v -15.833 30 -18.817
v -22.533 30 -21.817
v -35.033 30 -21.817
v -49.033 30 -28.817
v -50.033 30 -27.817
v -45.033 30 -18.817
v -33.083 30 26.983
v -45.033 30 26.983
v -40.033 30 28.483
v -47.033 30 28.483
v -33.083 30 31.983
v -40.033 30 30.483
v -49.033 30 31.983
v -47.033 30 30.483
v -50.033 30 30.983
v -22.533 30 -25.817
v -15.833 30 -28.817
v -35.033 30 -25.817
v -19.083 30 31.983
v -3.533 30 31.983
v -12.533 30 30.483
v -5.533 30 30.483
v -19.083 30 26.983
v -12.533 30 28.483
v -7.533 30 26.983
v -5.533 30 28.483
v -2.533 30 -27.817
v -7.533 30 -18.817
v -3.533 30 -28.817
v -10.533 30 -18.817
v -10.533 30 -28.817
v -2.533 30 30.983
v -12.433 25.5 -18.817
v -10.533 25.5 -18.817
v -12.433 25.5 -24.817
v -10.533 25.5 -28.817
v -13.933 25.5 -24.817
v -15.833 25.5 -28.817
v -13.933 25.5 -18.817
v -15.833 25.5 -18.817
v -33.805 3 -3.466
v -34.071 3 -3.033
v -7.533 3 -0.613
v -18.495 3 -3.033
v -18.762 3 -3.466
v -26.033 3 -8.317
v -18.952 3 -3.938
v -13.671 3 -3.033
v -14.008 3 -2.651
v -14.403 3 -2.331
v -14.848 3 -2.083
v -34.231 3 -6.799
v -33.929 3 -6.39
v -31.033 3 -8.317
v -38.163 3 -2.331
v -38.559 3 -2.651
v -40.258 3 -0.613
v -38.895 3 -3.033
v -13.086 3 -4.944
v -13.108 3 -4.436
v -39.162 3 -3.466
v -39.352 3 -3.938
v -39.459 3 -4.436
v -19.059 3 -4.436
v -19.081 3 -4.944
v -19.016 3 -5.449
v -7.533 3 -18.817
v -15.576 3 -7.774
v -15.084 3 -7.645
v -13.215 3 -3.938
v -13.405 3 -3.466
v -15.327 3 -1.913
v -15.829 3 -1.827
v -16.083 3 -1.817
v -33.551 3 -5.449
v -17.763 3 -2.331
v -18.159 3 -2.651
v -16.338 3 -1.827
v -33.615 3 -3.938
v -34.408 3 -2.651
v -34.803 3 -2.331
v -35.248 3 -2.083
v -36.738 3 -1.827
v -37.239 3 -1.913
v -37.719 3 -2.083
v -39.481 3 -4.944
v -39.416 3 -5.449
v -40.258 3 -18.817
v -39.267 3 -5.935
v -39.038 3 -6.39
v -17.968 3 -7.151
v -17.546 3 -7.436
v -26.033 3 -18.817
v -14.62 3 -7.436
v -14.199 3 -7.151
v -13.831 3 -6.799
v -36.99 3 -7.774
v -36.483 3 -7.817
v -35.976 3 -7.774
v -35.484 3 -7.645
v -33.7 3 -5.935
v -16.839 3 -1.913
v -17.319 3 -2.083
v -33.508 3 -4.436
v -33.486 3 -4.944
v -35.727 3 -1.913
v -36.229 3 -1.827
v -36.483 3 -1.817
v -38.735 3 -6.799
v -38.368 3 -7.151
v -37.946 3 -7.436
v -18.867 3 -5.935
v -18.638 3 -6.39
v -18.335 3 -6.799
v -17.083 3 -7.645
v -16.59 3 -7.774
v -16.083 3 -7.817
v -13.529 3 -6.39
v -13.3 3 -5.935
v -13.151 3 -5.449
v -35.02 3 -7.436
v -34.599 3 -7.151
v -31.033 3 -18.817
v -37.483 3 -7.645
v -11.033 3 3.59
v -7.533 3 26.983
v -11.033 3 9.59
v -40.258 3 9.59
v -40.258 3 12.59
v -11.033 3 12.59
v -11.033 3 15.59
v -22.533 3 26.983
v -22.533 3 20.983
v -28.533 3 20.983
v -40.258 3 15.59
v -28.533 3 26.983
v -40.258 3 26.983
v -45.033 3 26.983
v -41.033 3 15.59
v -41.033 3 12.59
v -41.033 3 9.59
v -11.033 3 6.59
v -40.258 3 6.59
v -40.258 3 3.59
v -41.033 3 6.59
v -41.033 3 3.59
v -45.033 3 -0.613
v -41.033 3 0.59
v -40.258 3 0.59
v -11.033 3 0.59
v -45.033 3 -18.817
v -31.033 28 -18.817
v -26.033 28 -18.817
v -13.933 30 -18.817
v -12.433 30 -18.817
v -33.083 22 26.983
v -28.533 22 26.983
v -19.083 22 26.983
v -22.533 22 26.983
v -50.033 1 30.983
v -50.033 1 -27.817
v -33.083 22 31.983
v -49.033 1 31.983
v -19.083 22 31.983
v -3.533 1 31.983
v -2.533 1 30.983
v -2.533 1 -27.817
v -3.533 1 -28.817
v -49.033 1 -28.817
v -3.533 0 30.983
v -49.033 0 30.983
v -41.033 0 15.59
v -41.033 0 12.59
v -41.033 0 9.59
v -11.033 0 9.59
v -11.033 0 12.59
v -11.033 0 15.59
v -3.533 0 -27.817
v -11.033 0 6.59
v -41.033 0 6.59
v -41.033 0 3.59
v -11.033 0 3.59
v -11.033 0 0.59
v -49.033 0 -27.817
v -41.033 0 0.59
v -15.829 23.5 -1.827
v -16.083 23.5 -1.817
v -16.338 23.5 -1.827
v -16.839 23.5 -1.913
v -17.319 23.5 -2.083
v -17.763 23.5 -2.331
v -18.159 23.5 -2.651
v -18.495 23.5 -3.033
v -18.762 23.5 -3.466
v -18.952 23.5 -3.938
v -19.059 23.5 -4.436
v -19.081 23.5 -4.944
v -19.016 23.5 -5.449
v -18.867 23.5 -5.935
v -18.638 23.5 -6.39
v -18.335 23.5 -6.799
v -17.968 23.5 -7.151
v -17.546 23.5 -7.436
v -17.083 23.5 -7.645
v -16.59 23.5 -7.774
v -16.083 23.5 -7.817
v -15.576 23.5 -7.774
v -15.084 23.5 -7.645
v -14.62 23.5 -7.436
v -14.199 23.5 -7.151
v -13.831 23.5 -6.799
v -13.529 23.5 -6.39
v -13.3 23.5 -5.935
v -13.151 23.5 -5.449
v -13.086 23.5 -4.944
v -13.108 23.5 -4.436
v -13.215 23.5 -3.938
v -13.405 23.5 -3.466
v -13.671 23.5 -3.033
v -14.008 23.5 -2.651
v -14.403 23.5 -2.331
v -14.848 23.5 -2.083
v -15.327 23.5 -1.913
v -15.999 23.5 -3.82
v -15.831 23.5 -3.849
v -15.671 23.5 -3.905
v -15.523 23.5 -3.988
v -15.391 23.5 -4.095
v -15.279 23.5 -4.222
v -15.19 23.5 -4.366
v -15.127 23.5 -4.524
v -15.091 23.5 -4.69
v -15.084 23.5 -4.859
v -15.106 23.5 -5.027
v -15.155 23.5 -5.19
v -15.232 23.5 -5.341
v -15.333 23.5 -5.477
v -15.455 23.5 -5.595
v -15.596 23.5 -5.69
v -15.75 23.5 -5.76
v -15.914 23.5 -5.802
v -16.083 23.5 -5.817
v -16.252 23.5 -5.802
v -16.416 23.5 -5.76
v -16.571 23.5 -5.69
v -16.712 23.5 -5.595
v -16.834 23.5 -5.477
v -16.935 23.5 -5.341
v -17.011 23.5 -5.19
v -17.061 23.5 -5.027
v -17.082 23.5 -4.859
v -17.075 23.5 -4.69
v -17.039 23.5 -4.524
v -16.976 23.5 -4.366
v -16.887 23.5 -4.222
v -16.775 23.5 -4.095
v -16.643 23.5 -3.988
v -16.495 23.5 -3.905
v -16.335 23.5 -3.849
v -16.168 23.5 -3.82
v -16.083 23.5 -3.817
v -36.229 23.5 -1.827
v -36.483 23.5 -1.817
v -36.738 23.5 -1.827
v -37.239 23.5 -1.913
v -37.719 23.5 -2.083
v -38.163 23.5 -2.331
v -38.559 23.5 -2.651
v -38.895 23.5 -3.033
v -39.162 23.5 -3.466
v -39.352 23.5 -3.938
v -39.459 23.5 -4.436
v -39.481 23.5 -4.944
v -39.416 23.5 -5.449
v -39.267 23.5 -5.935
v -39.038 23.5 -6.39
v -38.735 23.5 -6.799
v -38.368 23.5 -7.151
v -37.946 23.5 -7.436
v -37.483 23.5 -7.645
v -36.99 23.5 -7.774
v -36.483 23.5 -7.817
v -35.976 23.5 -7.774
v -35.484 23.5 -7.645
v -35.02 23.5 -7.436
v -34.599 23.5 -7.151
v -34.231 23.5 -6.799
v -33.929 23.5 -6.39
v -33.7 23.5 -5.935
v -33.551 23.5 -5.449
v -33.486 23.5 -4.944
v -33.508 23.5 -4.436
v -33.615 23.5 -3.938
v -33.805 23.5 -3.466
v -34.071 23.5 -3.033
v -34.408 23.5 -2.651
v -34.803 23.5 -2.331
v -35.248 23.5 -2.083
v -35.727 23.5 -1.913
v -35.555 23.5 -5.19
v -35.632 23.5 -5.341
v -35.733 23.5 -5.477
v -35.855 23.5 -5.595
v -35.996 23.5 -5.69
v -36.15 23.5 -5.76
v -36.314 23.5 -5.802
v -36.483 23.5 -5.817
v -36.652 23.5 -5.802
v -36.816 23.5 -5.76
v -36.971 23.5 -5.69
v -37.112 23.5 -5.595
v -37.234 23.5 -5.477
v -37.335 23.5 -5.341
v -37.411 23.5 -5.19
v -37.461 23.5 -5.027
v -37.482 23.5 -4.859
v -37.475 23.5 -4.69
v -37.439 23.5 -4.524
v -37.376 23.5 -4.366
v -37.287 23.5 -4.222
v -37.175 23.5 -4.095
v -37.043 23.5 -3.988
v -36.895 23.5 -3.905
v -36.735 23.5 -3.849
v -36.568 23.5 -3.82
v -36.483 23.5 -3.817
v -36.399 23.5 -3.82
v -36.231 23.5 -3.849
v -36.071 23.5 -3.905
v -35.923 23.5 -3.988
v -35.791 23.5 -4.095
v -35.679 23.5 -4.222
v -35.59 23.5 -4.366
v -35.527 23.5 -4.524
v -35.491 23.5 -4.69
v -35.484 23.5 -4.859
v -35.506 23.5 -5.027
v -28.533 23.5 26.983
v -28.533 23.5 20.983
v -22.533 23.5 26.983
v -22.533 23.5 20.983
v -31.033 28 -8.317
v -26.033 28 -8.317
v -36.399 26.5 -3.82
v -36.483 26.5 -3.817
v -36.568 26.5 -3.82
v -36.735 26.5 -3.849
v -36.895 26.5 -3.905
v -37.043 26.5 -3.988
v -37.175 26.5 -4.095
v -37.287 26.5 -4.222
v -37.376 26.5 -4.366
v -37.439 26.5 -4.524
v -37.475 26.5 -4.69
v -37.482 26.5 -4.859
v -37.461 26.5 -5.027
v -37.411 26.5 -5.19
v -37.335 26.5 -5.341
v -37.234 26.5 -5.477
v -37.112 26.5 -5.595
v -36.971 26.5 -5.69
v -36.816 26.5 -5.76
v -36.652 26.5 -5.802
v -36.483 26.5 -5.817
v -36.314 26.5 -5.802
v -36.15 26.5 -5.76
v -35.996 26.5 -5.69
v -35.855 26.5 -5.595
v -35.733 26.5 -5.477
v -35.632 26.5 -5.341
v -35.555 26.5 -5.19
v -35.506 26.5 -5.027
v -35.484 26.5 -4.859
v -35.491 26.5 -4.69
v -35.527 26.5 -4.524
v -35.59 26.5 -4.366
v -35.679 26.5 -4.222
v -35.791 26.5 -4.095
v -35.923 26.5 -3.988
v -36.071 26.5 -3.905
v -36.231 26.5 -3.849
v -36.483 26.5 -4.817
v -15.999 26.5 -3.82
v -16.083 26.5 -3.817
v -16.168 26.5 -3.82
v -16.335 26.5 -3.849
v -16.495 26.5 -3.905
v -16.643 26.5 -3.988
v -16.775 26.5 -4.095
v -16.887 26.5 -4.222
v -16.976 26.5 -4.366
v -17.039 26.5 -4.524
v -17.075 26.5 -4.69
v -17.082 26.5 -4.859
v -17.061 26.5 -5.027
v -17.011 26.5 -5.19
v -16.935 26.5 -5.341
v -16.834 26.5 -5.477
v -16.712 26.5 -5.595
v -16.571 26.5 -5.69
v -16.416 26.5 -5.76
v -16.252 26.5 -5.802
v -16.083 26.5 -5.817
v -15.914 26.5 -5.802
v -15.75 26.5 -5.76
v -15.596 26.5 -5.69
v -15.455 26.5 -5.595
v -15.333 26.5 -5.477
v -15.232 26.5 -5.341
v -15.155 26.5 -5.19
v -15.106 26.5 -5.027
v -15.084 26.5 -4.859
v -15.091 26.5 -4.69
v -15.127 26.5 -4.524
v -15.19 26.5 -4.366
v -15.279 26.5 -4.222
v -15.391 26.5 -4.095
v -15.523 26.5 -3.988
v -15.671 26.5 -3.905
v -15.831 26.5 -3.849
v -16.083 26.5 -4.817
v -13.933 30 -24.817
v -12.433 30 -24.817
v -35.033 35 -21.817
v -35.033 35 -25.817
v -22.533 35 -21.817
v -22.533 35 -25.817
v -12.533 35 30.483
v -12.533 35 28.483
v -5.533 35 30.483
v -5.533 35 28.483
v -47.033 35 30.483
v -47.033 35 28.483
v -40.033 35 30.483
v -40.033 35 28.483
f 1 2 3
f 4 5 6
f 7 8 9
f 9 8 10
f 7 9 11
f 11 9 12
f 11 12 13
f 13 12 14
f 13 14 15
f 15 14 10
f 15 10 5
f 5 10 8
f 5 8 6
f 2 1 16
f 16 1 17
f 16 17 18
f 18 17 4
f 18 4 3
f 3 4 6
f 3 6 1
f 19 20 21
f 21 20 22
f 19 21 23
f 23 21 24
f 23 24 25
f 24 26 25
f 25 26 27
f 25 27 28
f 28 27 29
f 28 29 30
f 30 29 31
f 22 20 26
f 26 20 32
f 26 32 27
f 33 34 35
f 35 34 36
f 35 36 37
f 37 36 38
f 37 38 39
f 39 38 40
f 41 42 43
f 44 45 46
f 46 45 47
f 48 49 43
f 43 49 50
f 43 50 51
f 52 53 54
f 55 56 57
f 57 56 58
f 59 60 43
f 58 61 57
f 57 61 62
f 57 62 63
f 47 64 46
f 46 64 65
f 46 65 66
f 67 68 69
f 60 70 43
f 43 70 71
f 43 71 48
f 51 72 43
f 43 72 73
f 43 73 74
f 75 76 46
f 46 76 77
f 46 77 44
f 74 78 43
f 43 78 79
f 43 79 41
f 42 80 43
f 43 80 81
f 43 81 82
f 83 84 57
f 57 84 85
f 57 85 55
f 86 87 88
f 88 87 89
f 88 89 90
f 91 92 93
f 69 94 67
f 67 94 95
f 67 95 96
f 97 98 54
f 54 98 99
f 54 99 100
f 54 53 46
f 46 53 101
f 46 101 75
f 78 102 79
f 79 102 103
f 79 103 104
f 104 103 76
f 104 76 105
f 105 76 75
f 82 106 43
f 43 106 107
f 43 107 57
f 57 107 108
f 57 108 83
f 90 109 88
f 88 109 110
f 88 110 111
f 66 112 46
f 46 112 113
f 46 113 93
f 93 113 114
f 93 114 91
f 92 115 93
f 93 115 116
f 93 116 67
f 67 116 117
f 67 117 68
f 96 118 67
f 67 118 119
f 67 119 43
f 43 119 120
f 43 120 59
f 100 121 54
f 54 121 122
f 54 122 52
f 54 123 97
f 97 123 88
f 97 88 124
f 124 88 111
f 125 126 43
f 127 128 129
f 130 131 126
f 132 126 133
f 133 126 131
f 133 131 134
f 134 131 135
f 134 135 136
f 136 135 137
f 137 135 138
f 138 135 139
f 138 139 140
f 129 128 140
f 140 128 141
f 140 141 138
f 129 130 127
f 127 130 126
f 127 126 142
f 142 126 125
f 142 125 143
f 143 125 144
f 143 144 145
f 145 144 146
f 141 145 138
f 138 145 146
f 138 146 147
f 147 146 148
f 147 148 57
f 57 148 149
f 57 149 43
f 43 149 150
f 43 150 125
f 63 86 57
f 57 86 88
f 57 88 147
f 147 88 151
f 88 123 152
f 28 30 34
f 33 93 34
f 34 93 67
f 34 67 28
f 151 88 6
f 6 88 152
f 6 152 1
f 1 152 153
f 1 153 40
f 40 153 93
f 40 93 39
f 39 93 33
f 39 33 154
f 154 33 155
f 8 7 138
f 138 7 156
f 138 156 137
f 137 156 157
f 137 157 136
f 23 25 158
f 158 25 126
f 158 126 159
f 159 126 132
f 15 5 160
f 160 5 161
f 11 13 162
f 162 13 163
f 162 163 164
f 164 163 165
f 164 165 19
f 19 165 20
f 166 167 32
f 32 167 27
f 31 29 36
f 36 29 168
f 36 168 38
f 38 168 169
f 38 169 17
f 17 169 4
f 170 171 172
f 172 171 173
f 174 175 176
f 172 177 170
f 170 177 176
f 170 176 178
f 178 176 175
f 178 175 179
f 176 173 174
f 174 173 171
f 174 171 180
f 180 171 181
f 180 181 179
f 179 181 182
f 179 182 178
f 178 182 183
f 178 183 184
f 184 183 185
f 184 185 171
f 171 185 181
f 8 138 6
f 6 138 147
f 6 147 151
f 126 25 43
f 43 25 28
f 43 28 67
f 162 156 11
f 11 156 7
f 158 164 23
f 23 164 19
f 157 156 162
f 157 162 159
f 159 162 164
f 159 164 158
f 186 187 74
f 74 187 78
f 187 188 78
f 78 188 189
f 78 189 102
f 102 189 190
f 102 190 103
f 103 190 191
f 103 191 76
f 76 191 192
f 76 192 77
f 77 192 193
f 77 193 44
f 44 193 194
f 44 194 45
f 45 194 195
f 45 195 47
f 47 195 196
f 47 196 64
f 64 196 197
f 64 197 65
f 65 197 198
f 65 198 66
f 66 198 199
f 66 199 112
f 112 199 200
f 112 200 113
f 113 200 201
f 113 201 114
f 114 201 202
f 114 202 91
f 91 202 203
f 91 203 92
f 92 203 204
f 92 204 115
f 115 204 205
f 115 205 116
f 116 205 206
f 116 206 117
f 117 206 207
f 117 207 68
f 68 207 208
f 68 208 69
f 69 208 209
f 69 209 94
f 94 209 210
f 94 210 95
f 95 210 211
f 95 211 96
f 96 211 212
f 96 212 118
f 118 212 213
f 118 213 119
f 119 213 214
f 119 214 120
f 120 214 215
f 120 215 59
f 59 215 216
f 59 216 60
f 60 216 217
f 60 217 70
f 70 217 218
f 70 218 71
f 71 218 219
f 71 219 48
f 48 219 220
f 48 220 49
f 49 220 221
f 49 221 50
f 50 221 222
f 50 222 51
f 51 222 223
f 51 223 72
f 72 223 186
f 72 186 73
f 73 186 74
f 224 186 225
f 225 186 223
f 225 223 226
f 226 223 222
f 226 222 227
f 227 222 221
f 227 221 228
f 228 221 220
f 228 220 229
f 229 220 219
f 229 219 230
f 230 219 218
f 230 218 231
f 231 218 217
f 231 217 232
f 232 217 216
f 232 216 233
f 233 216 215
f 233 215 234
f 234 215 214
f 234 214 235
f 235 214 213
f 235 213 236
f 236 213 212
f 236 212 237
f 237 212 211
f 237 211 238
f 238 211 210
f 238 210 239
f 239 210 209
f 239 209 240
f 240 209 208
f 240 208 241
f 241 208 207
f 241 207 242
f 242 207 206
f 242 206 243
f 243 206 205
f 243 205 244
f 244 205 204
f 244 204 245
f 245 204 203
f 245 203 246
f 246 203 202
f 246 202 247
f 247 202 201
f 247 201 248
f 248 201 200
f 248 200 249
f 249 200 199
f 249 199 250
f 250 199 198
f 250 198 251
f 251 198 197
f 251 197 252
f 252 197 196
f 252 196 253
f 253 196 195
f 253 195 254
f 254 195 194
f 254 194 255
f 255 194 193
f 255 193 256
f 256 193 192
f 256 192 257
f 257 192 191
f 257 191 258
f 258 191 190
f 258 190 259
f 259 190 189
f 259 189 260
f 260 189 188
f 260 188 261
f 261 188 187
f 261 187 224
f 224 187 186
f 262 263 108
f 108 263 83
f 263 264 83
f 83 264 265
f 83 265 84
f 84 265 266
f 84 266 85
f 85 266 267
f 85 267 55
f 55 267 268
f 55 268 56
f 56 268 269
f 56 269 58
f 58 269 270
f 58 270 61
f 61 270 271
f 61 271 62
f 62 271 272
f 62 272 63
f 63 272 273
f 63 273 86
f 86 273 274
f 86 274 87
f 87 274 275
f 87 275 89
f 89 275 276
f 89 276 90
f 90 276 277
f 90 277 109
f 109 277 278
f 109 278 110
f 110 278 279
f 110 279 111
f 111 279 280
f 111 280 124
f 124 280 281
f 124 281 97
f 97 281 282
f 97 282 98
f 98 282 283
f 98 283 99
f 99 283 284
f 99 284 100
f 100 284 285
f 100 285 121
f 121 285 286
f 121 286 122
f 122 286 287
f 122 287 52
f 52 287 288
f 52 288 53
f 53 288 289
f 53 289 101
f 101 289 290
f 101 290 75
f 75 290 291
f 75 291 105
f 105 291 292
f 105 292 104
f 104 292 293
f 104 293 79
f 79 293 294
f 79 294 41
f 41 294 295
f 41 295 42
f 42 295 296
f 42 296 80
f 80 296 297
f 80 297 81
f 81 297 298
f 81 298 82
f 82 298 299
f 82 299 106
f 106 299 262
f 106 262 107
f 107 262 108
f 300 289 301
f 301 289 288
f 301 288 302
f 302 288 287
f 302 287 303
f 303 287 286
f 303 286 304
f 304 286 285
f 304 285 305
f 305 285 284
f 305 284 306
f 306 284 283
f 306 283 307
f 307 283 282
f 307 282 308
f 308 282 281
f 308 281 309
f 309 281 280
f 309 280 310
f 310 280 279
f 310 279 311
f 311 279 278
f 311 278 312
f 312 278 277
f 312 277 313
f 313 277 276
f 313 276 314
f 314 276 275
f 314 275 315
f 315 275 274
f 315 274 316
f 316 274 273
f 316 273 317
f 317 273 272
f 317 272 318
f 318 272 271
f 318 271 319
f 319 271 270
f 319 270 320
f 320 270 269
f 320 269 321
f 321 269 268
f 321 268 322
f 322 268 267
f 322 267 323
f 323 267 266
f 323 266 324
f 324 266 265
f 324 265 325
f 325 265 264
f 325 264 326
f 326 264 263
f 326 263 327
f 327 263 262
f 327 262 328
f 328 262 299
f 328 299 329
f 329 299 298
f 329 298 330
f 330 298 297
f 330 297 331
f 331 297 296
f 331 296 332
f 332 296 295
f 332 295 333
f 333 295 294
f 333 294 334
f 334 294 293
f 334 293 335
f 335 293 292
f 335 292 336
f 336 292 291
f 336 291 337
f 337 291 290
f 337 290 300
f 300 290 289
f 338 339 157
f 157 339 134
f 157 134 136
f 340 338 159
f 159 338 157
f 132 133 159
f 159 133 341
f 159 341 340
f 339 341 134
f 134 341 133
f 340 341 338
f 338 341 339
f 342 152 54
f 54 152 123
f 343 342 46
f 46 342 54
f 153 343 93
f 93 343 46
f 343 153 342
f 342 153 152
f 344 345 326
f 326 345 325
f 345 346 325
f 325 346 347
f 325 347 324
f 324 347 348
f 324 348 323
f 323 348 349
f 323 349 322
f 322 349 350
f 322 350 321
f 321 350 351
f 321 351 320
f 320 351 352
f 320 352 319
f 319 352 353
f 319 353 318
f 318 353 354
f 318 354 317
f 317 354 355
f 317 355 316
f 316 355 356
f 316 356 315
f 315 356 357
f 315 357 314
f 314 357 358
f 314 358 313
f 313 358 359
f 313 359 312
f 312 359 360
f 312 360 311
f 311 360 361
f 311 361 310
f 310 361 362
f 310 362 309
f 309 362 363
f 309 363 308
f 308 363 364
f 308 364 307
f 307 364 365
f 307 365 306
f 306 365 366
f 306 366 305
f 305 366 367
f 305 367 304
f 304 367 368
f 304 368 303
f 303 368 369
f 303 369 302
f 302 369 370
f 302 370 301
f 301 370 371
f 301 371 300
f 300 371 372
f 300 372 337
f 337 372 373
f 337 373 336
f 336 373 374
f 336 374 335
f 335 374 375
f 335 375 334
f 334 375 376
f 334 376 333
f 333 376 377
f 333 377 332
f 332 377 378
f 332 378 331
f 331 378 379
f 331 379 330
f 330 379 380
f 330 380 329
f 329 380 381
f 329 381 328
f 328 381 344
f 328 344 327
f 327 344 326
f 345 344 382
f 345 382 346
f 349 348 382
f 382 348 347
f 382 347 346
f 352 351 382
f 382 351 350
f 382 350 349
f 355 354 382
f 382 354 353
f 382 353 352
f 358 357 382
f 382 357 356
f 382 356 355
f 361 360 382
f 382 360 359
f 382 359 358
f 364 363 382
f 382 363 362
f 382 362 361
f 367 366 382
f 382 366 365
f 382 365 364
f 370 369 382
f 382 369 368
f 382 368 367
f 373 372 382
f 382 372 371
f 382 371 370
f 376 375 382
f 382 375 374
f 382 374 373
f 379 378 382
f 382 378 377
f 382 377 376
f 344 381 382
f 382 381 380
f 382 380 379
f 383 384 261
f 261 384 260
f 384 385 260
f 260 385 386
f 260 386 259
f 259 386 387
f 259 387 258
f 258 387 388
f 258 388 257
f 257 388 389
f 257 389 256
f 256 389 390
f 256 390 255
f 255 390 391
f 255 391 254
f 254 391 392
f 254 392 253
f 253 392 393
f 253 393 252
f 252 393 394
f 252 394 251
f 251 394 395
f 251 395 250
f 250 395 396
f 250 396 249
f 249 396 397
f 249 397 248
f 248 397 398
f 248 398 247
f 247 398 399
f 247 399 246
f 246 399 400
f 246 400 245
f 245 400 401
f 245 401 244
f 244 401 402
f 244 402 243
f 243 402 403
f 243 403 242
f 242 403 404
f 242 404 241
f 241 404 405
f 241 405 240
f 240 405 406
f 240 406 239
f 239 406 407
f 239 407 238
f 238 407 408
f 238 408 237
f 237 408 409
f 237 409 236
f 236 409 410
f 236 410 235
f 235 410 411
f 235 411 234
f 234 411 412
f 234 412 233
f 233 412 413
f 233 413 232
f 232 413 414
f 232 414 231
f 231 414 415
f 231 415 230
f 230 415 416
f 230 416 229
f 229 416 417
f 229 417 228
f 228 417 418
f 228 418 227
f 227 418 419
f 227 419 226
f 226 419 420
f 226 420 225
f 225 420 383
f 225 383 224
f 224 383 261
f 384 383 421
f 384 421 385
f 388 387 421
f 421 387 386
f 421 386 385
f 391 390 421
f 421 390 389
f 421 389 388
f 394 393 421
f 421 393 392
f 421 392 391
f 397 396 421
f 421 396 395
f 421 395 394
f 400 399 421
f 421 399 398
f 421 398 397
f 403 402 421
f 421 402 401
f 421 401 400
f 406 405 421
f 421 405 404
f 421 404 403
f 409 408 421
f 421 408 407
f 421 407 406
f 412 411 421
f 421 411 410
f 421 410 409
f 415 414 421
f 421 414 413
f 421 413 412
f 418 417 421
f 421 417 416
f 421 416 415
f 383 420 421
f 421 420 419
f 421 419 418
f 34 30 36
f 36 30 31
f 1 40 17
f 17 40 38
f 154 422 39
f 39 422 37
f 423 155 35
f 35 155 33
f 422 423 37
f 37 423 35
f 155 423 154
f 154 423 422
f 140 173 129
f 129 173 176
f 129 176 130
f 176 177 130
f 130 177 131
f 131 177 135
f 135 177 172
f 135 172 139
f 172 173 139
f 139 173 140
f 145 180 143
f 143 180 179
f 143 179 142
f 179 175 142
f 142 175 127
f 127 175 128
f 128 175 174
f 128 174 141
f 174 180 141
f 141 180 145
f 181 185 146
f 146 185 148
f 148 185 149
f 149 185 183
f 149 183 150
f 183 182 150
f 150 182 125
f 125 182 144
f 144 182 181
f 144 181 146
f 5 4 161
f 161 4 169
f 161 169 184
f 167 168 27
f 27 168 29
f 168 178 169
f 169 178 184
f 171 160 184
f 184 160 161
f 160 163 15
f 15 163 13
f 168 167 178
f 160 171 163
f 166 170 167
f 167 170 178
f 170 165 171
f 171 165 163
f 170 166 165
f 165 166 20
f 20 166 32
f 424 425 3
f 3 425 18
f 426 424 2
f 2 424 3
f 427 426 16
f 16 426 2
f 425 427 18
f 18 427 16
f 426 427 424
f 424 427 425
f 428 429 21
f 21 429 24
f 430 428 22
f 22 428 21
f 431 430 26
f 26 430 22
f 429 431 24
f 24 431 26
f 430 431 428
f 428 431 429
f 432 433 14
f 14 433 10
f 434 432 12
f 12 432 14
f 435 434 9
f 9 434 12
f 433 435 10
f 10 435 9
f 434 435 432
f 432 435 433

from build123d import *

# Parameters (mm, degrees)
SKETCH_1_W          = 47.5
SKETCH_1_H          = 60.8
EXTRUDE_1_DEPTH     = 30
SKETCH_3_W          = 37.5
SKETCH_3_H          = 45.8
CUT_EXTRUDE_1_DEPTH = 27
SKETCH_4_W          = 14
SKETCH_4_H          = 5
CUT_EXTRUDE_2_DEPTH = 8
SKETCH_5_R          = 3
SKETCH_5_W          = 6
SKETCH_5_H          = 6
EXTRUDE_4_DEPTH     = 20.5
SKETCH_6_W          = 5
SKETCH_6_H          = 10.5
EXTRUDE_6_DEPTH     = 25
SKETCH_7_R          = 1
EXTRUDE_7_DEPTH     = 3
SKETCH_12_W         = 5.3
SKETCH_12_H         = 4.5
CUT_EXTRUDE_5_DEPTH = 10
SKETCH_13_W         = 1.5
SKETCH_13_H         = 6
EXTRUDE_8_DEPTH     = 4.5
SKETCH_14_W         = 30
SKETCH_14_H         = 3
CUT_EXTRUDE_6_DEPTH = 3
CHAMFER_1_SIZE      = 1
SKETCH_16_W         = 12.5
SKETCH_16_H         = 4
SKETCH_16_W_2       = 7
SKETCH_16_H_2       = 2
EXTRUDE_9_DEPTH     = 5


with BuildPart() as part:
    # 草图1 → 凸台-拉伸1 (new body)
    with BuildSketch(Plane(origin=(0, 0, 0), x_dir=(1, 0, 0), z_dir=(0, 1, 0))):
        with Locations((-26.283333333, -1.583333333)):
            Rectangle(SKETCH_1_W, SKETCH_1_H)
    extrude(amount=EXTRUDE_1_DEPTH)

    # 草图3 → 切除-拉伸1 (cut)
    with BuildSketch(Plane(origin=(0, 30, 0), x_dir=(1, 0, 0), z_dir=(0, 1, 0))):
        with Locations((-26.283333333, -4.083333333)):
            Rectangle(SKETCH_3_W, SKETCH_3_H)
    extrude(amount=-CUT_EXTRUDE_1_DEPTH, mode=Mode.SUBTRACT)

    # 草图4 → 切除-拉伸2 (cut)
    with BuildSketch(Plane(origin=(0, 30, 0), x_dir=(1, 0, 0), z_dir=(0, 1, 0))):
        with Locations((-26.083333333, -29.483333333)):
            Rectangle(SKETCH_4_W, SKETCH_4_H)
    extrude(amount=-CUT_EXTRUDE_2_DEPTH, mode=Mode.SUBTRACT)

    # 草图5 → 凸台-拉伸4 (add)
    with BuildSketch(Plane(origin=(0, 3, 0), x_dir=(1, 0, 0), z_dir=(0, 1, 0))):
        with Locations(Location((-16.083333333, 4.816666667, 0), (0, 0, 270))):
            Circle(SKETCH_5_R)
        with Locations(Location((-36.483333333, 4.816666667, 0), (0, 0, 270))):
            Circle(SKETCH_5_R)
        with Locations((-25.533333333, -23.983333333)):
            Rectangle(SKETCH_5_W, SKETCH_5_H)
    extrude(amount=EXTRUDE_4_DEPTH)

    # 草图6 → 凸台-拉伸6 (add)
    with BuildSketch(Plane(origin=(0, 3, 0), x_dir=(1, 0, 0), z_dir=(0, 1, 0))):
        with Locations((-28.533333333, 13.566666667)):
            Rectangle(SKETCH_6_W, SKETCH_6_H)
    extrude(amount=EXTRUDE_6_DEPTH)

    # 草图7 → 凸台-拉伸7 (add)
    with BuildSketch(Plane(origin=(0, 23.5, 0), x_dir=(1, 0, 0), z_dir=(0, 1, 0))):
        with Locations(Location((-36.483333333, 4.816666667, 0), (0, 0, 270))):
            Circle(SKETCH_7_R)
        with Locations(Location((-16.083333333, 4.816666667, 0), (0, 0, 270))):
            Circle(SKETCH_7_R)
    extrude(amount=EXTRUDE_7_DEPTH)

    # 草图12 → 切除-拉伸5 (cut)
    with BuildSketch(Plane(origin=(0, 0, -28.816666667), x_dir=(-1, 0, 0), z_dir=(0, 0, -1))):
        with Locations((13.183333333, 27.75)):
            Rectangle(SKETCH_12_W, SKETCH_12_H)
    extrude(amount=-CUT_EXTRUDE_5_DEPTH, mode=Mode.SUBTRACT)

    # 草图13 → 凸台-拉伸8 (add)
    with BuildSketch(Plane(origin=(0, 25.5, 0), x_dir=(1, 0, 0), z_dir=(0, 1, 0))):
        with Locations((-13.183333333, 21.816666667)):
            Rectangle(SKETCH_13_W, SKETCH_13_H)
    extrude(amount=EXTRUDE_8_DEPTH)

    # 草图14 → 切除-拉伸6 (cut)
    with BuildSketch(Plane(origin=(0, 3, 0), x_dir=(1, 0, 0), z_dir=(0, 1, 0))):
        with Locations((-26.033333333, -2.090371048)):
            Rectangle(SKETCH_14_W, SKETCH_14_H)
        with Locations((-26.033333333, -8.090371048)):
            Rectangle(SKETCH_14_W, SKETCH_14_H)
        with Locations((-26.033333333, -14.090371048)):
            Rectangle(SKETCH_14_W, SKETCH_14_H)
    extrude(amount=-CUT_EXTRUDE_6_DEPTH, mode=Mode.SUBTRACT)

    # 倒角1
    chamfer_1_edges = [part.edges().sort_by_distance(p)[0] for p in [
        (-26.283333333, 0, -28.816666667),
        (-2.533333333, 0, 1.583333333),
        (-26.283333333, 0, 31.983333333),
        (-50.033333333, 0, 1.583333333),
        (-50.033333333, 15, -28.816666667),
        (-2.533333333, 15, -28.816666667),
        (-2.533333333, 15, 31.983333333),
        (-50.033333333, 15, 31.983333333),
    ]]
    chamfer(chamfer_1_edges, length=CHAMFER_1_SIZE)

    # 草图16 → 凸台-拉伸9 (add)
    with BuildSketch(Plane(origin=(0, 30, 0), x_dir=(1, 0, 0), z_dir=(0, 1, 0))):
        with Locations((-28.783333333, 23.816666667)):
            Rectangle(SKETCH_16_W, SKETCH_16_H)
        with Locations((-9.033333333, -29.483333333)):
            Rectangle(SKETCH_16_W_2, SKETCH_16_H_2)
        with Locations((-43.533333333, -29.483333333)):
            Rectangle(SKETCH_16_W_2, SKETCH_16_H_2)
    extrude(amount=EXTRUDE_9_DEPTH)


solid = part.part
